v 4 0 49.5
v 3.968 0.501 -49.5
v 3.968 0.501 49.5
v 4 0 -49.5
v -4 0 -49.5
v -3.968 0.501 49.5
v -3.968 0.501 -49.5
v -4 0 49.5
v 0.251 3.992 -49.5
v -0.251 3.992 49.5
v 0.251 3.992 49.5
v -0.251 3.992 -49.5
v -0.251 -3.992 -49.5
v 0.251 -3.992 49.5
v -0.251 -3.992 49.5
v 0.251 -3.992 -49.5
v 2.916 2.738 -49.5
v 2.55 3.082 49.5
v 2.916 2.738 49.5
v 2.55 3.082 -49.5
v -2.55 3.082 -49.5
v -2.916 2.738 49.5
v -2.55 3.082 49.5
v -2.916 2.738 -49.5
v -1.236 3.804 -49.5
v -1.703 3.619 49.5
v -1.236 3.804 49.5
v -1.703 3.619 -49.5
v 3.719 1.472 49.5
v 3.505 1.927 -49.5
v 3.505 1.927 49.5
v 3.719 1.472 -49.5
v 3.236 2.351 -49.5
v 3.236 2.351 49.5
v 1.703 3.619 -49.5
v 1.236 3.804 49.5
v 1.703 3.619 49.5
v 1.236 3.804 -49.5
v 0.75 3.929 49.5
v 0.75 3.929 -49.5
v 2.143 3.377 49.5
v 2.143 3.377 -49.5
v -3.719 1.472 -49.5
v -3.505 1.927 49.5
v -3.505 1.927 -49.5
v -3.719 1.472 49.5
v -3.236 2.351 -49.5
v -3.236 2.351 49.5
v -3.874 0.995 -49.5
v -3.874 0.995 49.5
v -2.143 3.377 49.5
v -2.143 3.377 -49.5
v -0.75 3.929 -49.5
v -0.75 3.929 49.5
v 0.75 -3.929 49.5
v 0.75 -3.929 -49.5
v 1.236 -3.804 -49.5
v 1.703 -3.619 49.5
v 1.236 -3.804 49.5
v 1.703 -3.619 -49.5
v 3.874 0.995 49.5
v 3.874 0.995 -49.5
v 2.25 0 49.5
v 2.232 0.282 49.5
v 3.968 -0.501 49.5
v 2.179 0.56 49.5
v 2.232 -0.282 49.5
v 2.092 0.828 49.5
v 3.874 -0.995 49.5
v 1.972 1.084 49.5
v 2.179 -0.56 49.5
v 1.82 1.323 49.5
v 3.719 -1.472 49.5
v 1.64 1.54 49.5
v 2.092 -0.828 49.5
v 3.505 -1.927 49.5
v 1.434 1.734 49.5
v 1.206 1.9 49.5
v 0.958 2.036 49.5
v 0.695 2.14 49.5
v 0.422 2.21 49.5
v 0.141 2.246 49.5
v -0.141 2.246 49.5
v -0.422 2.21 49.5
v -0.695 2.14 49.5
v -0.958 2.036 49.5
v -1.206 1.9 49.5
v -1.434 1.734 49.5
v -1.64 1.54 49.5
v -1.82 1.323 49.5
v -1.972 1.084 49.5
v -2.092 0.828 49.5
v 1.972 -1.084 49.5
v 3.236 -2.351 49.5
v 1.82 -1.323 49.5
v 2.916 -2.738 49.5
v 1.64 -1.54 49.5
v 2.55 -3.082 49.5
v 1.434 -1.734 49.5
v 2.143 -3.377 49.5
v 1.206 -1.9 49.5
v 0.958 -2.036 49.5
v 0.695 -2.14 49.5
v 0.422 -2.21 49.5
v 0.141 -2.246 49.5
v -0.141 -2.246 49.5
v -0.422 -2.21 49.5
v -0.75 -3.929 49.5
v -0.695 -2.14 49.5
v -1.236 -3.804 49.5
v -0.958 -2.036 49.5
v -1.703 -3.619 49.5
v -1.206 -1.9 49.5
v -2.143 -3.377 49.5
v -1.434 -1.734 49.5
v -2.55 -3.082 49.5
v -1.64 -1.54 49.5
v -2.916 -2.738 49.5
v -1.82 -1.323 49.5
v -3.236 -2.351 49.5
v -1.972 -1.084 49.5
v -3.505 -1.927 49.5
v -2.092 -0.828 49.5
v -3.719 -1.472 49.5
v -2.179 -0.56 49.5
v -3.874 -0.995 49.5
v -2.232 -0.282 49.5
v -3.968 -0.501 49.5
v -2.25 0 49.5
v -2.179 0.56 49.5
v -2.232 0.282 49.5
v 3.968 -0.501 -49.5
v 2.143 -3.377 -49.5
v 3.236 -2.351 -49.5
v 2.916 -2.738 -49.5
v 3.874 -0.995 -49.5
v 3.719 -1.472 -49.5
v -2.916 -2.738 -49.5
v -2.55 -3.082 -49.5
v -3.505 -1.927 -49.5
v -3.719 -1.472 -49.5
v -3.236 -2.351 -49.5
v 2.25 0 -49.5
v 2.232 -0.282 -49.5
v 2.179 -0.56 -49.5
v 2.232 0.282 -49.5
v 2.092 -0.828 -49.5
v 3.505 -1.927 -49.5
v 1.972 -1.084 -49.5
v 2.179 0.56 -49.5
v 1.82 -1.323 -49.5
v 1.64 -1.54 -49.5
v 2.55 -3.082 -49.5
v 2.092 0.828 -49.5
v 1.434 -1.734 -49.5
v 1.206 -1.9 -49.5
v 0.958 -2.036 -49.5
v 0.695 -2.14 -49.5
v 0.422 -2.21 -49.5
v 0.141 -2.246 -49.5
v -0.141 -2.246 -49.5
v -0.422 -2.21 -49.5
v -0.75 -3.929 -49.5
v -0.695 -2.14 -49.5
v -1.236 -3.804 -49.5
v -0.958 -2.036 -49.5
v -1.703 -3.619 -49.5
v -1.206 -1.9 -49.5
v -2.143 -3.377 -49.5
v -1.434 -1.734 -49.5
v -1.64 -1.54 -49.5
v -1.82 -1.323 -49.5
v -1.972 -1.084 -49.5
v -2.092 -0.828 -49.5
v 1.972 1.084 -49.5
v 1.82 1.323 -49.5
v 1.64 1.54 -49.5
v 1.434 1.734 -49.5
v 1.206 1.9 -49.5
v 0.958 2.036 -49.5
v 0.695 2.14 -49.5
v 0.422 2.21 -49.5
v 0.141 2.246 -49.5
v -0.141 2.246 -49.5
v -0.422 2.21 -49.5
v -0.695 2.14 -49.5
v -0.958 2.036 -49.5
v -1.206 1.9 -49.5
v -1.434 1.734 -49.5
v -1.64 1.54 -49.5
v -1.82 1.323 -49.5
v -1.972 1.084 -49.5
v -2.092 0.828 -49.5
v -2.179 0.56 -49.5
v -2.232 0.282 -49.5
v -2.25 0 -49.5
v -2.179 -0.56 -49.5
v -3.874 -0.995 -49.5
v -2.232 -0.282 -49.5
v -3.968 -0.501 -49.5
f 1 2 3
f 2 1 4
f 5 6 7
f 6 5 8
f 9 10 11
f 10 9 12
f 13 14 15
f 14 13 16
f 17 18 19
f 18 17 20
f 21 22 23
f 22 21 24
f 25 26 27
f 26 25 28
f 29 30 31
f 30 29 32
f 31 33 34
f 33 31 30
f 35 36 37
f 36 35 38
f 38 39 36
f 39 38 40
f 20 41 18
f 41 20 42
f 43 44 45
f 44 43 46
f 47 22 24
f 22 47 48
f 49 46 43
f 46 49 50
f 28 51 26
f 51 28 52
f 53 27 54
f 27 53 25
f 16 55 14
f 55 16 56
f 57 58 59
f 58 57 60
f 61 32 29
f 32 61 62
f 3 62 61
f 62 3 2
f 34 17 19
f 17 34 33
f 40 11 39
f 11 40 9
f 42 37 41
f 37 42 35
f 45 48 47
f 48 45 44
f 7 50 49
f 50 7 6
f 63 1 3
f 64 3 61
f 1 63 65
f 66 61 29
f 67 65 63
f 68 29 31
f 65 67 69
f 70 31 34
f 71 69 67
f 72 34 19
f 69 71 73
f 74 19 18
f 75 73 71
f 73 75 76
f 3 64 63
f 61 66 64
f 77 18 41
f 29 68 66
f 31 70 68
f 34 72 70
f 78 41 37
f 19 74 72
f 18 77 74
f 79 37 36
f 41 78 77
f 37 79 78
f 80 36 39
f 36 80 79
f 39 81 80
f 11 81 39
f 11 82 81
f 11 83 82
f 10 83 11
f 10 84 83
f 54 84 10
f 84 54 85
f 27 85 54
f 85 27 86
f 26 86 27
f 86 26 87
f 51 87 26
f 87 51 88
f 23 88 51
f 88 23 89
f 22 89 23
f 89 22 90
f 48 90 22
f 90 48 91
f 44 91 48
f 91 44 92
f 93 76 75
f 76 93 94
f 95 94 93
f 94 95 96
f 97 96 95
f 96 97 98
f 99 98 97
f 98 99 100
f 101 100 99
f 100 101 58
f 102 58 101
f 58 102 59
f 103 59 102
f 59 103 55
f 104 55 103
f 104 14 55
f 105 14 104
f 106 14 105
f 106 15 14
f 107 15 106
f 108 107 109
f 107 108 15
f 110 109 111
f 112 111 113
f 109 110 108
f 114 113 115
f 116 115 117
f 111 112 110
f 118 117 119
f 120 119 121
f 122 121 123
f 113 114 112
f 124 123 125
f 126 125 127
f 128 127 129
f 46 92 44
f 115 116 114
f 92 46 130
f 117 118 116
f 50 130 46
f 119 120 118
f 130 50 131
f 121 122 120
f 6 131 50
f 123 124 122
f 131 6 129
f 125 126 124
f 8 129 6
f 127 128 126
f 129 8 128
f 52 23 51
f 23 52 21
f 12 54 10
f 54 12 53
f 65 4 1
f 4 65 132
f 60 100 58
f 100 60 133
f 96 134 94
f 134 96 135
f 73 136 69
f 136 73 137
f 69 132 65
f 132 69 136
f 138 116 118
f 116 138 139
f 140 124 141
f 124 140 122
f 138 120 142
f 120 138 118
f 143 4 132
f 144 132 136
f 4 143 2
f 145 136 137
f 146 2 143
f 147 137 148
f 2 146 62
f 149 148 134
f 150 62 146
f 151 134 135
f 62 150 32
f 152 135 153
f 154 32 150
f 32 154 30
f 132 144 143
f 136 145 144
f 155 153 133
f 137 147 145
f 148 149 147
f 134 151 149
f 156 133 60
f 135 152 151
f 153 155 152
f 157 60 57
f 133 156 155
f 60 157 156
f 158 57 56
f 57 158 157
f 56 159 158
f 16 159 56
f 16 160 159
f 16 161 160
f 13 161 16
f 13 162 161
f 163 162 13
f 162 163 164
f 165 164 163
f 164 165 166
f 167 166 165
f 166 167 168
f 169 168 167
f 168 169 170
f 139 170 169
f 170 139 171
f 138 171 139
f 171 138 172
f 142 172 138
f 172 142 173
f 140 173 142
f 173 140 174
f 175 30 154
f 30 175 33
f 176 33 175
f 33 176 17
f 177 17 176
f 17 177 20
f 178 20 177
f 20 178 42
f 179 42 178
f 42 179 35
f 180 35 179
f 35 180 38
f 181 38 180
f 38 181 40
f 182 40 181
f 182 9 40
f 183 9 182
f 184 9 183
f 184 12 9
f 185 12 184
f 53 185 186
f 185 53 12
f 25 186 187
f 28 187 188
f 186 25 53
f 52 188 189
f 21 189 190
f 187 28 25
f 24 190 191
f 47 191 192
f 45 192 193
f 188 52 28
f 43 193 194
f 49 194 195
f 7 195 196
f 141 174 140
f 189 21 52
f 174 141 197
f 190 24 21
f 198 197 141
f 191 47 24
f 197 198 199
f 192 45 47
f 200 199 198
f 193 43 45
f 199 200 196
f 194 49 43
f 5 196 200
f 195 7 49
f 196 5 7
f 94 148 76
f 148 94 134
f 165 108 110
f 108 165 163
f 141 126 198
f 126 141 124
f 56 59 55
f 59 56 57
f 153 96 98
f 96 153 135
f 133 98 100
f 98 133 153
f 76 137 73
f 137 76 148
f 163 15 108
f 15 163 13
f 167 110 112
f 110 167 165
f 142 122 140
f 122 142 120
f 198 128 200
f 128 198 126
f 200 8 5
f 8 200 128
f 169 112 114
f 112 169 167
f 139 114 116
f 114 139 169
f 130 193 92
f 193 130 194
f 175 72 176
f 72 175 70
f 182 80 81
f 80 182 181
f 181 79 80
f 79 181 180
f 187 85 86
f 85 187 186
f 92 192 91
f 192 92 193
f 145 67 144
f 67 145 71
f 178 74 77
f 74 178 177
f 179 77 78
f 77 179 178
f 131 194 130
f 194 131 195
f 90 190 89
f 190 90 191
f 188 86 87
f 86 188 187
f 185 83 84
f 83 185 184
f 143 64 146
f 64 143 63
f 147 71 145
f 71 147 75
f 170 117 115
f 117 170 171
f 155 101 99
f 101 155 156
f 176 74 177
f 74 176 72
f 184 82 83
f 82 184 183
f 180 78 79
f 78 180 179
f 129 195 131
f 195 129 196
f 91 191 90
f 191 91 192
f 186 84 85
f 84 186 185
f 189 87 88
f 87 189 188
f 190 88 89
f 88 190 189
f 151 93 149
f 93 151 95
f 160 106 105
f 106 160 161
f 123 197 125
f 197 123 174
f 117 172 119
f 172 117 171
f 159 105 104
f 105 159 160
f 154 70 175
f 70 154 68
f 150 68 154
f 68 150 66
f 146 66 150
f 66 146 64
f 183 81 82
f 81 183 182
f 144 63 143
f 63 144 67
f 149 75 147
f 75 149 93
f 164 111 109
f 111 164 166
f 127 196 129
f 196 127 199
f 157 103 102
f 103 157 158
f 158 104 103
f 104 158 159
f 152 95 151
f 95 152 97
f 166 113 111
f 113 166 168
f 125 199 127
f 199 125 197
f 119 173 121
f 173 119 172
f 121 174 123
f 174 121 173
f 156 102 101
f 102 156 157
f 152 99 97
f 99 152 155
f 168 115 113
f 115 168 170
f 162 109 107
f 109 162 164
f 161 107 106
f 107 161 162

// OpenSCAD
$fn = 50;


difference() {
	union() {
		translate(v = [0, 0, -49.5000000000]) {
			cylinder(h = 99, r = 4.0000000000);
		}
	}
	union() {
		translate(v = [0, 0, -100.0000000000]) {
			cylinder(h = 200, r = 2.2500000000);
		}
	}
}
